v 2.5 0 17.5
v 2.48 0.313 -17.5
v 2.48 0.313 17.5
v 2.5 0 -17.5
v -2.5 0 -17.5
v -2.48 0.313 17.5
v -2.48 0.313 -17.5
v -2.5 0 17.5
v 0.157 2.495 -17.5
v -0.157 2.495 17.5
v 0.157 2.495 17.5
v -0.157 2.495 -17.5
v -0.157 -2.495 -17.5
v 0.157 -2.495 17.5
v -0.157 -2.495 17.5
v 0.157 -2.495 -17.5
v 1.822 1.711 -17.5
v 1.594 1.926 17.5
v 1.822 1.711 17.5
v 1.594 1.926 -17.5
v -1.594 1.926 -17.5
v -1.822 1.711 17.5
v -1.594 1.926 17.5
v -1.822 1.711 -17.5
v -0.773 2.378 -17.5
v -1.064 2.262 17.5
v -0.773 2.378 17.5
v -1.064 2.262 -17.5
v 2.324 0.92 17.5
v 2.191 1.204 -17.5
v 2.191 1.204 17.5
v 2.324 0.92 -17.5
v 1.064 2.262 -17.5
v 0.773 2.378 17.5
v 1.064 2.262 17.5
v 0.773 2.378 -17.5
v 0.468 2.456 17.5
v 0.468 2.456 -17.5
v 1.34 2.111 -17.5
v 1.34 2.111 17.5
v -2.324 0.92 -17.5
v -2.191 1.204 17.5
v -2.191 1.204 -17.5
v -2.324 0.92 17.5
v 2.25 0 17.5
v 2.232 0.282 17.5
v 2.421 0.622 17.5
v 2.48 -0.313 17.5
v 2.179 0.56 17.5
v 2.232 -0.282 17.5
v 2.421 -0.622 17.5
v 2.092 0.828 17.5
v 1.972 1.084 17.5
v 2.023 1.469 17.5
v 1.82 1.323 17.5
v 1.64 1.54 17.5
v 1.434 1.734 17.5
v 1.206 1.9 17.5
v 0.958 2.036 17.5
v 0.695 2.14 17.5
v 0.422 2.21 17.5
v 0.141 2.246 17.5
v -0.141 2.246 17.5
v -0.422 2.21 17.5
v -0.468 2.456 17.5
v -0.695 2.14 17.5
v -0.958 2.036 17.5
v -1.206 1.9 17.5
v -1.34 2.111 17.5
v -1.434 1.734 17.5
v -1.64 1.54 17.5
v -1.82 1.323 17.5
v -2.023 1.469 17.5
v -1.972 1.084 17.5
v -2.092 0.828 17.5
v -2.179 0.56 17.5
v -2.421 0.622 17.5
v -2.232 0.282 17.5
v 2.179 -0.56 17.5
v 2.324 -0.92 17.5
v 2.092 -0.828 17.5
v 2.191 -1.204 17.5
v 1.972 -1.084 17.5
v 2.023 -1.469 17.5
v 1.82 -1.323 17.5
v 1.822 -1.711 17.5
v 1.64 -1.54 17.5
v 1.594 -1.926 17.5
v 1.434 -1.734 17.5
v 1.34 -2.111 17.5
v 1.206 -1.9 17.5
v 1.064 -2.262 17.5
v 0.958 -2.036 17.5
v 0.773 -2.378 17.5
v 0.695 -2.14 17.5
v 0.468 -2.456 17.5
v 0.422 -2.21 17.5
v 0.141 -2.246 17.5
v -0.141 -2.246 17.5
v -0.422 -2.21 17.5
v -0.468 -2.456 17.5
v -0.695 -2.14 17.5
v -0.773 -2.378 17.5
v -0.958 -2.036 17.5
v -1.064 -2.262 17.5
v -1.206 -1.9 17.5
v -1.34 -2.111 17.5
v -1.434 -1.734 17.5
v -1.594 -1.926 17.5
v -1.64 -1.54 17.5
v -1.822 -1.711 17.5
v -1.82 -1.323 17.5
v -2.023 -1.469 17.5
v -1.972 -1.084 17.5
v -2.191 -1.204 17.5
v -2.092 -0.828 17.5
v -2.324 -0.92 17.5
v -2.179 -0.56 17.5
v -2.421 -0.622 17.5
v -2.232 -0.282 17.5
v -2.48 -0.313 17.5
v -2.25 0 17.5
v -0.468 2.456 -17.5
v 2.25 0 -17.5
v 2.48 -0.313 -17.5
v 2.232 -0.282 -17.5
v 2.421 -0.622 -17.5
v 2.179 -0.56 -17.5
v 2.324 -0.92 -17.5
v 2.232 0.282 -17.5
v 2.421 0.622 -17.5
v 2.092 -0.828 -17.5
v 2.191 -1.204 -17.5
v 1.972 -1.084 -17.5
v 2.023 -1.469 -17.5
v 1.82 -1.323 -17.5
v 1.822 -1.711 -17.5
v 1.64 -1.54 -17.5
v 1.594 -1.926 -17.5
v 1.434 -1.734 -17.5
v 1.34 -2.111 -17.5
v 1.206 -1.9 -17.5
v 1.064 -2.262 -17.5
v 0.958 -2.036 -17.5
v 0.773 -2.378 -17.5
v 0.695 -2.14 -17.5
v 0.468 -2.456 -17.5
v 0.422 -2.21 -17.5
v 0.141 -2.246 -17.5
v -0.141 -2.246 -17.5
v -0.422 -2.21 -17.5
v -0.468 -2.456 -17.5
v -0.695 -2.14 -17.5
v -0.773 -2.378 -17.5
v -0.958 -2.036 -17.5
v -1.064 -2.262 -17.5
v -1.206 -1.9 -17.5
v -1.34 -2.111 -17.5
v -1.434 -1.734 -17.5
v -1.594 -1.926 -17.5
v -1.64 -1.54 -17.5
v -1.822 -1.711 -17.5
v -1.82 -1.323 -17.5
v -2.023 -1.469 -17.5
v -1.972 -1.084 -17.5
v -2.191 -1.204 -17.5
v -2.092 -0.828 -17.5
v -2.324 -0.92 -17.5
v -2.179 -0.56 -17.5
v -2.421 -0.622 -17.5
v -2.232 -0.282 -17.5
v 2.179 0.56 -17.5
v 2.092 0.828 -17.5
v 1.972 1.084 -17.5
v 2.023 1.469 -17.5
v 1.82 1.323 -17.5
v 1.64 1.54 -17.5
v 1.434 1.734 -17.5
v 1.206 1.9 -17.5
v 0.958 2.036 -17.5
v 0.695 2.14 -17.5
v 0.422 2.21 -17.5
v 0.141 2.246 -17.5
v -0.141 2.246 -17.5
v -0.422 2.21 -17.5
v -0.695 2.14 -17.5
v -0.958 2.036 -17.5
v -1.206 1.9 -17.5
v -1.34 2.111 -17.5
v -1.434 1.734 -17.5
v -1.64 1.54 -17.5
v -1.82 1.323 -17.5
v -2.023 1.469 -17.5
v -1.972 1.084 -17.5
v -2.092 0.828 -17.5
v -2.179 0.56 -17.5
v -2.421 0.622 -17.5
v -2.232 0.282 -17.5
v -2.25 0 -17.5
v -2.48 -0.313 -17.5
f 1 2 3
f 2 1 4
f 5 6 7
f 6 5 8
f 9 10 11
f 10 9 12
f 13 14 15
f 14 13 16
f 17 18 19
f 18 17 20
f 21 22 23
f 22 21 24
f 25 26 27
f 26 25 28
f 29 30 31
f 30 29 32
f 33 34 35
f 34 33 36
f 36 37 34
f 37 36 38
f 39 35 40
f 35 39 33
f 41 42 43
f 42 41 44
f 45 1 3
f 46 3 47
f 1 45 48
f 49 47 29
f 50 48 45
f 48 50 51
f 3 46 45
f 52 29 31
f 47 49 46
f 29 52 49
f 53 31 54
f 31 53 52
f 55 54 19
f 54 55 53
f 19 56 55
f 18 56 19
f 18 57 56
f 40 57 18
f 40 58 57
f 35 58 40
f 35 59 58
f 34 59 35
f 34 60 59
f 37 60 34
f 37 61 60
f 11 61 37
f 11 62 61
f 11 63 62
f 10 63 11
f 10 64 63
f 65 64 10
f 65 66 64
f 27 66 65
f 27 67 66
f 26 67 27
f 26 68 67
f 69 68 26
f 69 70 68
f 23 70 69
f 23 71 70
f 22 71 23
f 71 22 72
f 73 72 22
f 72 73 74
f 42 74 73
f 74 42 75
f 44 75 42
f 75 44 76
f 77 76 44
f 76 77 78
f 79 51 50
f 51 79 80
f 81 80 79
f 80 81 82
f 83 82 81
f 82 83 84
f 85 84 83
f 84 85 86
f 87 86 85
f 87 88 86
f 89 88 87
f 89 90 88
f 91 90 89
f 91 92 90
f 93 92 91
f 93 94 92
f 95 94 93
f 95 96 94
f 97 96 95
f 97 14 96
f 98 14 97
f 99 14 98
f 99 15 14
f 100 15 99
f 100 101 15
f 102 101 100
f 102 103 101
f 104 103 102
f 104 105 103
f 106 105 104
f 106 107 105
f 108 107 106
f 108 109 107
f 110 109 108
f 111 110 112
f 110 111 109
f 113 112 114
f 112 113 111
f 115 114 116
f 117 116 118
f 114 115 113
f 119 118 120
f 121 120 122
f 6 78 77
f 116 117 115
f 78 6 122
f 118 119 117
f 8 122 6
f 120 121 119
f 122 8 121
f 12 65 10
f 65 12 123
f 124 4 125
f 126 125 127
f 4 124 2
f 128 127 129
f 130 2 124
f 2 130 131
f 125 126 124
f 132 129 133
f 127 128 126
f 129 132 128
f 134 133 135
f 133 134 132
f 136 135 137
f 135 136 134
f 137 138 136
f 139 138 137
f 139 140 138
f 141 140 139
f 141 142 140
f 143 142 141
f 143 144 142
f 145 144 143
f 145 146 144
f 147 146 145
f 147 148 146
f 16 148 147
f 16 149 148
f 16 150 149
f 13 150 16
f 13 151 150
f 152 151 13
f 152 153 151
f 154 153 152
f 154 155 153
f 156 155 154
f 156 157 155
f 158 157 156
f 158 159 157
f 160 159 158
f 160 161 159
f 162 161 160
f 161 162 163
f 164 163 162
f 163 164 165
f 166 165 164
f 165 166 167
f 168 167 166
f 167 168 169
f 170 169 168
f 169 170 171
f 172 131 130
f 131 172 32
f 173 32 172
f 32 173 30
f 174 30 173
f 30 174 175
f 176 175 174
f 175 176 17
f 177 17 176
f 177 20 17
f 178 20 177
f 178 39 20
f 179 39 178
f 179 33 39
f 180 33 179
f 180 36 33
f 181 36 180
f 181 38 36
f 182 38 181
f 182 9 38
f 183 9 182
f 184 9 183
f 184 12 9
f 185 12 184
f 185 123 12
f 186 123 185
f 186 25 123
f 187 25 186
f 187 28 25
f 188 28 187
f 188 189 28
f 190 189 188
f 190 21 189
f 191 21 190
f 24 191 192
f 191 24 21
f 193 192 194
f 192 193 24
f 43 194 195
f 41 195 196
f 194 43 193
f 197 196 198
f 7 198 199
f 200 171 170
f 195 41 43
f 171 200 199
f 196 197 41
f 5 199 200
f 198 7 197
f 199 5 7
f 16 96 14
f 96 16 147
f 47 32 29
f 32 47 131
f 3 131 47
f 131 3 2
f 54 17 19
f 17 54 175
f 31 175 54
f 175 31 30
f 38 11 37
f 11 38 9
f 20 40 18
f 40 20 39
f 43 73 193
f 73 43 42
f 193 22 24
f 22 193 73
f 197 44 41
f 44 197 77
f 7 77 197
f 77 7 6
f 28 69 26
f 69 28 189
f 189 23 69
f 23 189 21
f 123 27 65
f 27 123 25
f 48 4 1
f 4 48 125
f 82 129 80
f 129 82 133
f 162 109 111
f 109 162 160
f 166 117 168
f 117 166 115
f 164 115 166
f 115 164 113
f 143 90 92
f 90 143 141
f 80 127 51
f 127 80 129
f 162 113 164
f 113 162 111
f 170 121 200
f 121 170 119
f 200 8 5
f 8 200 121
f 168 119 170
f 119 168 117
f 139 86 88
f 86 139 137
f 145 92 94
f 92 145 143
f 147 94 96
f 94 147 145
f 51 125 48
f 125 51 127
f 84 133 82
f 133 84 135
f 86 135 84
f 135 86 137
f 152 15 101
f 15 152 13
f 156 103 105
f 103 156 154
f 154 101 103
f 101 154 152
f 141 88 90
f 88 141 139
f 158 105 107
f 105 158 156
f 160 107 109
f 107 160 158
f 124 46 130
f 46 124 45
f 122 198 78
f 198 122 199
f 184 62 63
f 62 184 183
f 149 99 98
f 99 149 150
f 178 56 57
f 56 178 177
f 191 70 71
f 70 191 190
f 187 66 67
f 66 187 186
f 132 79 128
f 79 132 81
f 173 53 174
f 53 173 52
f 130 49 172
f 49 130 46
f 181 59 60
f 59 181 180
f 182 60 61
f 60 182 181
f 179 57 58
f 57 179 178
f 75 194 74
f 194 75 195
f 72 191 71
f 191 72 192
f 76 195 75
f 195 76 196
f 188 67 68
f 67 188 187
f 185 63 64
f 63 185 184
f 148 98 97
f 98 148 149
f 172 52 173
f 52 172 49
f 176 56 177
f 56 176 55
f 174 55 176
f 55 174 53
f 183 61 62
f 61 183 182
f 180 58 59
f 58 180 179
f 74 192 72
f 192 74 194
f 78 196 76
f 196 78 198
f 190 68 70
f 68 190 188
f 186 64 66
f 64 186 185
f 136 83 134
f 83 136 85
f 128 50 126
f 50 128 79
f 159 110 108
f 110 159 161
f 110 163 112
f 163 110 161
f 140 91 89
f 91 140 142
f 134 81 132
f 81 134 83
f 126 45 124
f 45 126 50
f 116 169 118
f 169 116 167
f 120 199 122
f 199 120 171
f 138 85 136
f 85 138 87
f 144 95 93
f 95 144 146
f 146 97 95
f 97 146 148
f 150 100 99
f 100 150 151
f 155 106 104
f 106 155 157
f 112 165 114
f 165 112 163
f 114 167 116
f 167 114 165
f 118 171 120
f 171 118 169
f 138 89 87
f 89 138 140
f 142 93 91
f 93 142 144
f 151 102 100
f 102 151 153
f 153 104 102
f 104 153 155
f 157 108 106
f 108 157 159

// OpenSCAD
$fn = 50;


difference() {
	union() {
		translate(v = [0, 0, -17.5000000000]) {
			cylinder(h = 35, r = 2.5000000000);
		}
	}
	union() {
		translate(v = [0, 0, -100.0000000000]) {
			cylinder(h = 200, r = 2.2500000000);
		}
	}
}
